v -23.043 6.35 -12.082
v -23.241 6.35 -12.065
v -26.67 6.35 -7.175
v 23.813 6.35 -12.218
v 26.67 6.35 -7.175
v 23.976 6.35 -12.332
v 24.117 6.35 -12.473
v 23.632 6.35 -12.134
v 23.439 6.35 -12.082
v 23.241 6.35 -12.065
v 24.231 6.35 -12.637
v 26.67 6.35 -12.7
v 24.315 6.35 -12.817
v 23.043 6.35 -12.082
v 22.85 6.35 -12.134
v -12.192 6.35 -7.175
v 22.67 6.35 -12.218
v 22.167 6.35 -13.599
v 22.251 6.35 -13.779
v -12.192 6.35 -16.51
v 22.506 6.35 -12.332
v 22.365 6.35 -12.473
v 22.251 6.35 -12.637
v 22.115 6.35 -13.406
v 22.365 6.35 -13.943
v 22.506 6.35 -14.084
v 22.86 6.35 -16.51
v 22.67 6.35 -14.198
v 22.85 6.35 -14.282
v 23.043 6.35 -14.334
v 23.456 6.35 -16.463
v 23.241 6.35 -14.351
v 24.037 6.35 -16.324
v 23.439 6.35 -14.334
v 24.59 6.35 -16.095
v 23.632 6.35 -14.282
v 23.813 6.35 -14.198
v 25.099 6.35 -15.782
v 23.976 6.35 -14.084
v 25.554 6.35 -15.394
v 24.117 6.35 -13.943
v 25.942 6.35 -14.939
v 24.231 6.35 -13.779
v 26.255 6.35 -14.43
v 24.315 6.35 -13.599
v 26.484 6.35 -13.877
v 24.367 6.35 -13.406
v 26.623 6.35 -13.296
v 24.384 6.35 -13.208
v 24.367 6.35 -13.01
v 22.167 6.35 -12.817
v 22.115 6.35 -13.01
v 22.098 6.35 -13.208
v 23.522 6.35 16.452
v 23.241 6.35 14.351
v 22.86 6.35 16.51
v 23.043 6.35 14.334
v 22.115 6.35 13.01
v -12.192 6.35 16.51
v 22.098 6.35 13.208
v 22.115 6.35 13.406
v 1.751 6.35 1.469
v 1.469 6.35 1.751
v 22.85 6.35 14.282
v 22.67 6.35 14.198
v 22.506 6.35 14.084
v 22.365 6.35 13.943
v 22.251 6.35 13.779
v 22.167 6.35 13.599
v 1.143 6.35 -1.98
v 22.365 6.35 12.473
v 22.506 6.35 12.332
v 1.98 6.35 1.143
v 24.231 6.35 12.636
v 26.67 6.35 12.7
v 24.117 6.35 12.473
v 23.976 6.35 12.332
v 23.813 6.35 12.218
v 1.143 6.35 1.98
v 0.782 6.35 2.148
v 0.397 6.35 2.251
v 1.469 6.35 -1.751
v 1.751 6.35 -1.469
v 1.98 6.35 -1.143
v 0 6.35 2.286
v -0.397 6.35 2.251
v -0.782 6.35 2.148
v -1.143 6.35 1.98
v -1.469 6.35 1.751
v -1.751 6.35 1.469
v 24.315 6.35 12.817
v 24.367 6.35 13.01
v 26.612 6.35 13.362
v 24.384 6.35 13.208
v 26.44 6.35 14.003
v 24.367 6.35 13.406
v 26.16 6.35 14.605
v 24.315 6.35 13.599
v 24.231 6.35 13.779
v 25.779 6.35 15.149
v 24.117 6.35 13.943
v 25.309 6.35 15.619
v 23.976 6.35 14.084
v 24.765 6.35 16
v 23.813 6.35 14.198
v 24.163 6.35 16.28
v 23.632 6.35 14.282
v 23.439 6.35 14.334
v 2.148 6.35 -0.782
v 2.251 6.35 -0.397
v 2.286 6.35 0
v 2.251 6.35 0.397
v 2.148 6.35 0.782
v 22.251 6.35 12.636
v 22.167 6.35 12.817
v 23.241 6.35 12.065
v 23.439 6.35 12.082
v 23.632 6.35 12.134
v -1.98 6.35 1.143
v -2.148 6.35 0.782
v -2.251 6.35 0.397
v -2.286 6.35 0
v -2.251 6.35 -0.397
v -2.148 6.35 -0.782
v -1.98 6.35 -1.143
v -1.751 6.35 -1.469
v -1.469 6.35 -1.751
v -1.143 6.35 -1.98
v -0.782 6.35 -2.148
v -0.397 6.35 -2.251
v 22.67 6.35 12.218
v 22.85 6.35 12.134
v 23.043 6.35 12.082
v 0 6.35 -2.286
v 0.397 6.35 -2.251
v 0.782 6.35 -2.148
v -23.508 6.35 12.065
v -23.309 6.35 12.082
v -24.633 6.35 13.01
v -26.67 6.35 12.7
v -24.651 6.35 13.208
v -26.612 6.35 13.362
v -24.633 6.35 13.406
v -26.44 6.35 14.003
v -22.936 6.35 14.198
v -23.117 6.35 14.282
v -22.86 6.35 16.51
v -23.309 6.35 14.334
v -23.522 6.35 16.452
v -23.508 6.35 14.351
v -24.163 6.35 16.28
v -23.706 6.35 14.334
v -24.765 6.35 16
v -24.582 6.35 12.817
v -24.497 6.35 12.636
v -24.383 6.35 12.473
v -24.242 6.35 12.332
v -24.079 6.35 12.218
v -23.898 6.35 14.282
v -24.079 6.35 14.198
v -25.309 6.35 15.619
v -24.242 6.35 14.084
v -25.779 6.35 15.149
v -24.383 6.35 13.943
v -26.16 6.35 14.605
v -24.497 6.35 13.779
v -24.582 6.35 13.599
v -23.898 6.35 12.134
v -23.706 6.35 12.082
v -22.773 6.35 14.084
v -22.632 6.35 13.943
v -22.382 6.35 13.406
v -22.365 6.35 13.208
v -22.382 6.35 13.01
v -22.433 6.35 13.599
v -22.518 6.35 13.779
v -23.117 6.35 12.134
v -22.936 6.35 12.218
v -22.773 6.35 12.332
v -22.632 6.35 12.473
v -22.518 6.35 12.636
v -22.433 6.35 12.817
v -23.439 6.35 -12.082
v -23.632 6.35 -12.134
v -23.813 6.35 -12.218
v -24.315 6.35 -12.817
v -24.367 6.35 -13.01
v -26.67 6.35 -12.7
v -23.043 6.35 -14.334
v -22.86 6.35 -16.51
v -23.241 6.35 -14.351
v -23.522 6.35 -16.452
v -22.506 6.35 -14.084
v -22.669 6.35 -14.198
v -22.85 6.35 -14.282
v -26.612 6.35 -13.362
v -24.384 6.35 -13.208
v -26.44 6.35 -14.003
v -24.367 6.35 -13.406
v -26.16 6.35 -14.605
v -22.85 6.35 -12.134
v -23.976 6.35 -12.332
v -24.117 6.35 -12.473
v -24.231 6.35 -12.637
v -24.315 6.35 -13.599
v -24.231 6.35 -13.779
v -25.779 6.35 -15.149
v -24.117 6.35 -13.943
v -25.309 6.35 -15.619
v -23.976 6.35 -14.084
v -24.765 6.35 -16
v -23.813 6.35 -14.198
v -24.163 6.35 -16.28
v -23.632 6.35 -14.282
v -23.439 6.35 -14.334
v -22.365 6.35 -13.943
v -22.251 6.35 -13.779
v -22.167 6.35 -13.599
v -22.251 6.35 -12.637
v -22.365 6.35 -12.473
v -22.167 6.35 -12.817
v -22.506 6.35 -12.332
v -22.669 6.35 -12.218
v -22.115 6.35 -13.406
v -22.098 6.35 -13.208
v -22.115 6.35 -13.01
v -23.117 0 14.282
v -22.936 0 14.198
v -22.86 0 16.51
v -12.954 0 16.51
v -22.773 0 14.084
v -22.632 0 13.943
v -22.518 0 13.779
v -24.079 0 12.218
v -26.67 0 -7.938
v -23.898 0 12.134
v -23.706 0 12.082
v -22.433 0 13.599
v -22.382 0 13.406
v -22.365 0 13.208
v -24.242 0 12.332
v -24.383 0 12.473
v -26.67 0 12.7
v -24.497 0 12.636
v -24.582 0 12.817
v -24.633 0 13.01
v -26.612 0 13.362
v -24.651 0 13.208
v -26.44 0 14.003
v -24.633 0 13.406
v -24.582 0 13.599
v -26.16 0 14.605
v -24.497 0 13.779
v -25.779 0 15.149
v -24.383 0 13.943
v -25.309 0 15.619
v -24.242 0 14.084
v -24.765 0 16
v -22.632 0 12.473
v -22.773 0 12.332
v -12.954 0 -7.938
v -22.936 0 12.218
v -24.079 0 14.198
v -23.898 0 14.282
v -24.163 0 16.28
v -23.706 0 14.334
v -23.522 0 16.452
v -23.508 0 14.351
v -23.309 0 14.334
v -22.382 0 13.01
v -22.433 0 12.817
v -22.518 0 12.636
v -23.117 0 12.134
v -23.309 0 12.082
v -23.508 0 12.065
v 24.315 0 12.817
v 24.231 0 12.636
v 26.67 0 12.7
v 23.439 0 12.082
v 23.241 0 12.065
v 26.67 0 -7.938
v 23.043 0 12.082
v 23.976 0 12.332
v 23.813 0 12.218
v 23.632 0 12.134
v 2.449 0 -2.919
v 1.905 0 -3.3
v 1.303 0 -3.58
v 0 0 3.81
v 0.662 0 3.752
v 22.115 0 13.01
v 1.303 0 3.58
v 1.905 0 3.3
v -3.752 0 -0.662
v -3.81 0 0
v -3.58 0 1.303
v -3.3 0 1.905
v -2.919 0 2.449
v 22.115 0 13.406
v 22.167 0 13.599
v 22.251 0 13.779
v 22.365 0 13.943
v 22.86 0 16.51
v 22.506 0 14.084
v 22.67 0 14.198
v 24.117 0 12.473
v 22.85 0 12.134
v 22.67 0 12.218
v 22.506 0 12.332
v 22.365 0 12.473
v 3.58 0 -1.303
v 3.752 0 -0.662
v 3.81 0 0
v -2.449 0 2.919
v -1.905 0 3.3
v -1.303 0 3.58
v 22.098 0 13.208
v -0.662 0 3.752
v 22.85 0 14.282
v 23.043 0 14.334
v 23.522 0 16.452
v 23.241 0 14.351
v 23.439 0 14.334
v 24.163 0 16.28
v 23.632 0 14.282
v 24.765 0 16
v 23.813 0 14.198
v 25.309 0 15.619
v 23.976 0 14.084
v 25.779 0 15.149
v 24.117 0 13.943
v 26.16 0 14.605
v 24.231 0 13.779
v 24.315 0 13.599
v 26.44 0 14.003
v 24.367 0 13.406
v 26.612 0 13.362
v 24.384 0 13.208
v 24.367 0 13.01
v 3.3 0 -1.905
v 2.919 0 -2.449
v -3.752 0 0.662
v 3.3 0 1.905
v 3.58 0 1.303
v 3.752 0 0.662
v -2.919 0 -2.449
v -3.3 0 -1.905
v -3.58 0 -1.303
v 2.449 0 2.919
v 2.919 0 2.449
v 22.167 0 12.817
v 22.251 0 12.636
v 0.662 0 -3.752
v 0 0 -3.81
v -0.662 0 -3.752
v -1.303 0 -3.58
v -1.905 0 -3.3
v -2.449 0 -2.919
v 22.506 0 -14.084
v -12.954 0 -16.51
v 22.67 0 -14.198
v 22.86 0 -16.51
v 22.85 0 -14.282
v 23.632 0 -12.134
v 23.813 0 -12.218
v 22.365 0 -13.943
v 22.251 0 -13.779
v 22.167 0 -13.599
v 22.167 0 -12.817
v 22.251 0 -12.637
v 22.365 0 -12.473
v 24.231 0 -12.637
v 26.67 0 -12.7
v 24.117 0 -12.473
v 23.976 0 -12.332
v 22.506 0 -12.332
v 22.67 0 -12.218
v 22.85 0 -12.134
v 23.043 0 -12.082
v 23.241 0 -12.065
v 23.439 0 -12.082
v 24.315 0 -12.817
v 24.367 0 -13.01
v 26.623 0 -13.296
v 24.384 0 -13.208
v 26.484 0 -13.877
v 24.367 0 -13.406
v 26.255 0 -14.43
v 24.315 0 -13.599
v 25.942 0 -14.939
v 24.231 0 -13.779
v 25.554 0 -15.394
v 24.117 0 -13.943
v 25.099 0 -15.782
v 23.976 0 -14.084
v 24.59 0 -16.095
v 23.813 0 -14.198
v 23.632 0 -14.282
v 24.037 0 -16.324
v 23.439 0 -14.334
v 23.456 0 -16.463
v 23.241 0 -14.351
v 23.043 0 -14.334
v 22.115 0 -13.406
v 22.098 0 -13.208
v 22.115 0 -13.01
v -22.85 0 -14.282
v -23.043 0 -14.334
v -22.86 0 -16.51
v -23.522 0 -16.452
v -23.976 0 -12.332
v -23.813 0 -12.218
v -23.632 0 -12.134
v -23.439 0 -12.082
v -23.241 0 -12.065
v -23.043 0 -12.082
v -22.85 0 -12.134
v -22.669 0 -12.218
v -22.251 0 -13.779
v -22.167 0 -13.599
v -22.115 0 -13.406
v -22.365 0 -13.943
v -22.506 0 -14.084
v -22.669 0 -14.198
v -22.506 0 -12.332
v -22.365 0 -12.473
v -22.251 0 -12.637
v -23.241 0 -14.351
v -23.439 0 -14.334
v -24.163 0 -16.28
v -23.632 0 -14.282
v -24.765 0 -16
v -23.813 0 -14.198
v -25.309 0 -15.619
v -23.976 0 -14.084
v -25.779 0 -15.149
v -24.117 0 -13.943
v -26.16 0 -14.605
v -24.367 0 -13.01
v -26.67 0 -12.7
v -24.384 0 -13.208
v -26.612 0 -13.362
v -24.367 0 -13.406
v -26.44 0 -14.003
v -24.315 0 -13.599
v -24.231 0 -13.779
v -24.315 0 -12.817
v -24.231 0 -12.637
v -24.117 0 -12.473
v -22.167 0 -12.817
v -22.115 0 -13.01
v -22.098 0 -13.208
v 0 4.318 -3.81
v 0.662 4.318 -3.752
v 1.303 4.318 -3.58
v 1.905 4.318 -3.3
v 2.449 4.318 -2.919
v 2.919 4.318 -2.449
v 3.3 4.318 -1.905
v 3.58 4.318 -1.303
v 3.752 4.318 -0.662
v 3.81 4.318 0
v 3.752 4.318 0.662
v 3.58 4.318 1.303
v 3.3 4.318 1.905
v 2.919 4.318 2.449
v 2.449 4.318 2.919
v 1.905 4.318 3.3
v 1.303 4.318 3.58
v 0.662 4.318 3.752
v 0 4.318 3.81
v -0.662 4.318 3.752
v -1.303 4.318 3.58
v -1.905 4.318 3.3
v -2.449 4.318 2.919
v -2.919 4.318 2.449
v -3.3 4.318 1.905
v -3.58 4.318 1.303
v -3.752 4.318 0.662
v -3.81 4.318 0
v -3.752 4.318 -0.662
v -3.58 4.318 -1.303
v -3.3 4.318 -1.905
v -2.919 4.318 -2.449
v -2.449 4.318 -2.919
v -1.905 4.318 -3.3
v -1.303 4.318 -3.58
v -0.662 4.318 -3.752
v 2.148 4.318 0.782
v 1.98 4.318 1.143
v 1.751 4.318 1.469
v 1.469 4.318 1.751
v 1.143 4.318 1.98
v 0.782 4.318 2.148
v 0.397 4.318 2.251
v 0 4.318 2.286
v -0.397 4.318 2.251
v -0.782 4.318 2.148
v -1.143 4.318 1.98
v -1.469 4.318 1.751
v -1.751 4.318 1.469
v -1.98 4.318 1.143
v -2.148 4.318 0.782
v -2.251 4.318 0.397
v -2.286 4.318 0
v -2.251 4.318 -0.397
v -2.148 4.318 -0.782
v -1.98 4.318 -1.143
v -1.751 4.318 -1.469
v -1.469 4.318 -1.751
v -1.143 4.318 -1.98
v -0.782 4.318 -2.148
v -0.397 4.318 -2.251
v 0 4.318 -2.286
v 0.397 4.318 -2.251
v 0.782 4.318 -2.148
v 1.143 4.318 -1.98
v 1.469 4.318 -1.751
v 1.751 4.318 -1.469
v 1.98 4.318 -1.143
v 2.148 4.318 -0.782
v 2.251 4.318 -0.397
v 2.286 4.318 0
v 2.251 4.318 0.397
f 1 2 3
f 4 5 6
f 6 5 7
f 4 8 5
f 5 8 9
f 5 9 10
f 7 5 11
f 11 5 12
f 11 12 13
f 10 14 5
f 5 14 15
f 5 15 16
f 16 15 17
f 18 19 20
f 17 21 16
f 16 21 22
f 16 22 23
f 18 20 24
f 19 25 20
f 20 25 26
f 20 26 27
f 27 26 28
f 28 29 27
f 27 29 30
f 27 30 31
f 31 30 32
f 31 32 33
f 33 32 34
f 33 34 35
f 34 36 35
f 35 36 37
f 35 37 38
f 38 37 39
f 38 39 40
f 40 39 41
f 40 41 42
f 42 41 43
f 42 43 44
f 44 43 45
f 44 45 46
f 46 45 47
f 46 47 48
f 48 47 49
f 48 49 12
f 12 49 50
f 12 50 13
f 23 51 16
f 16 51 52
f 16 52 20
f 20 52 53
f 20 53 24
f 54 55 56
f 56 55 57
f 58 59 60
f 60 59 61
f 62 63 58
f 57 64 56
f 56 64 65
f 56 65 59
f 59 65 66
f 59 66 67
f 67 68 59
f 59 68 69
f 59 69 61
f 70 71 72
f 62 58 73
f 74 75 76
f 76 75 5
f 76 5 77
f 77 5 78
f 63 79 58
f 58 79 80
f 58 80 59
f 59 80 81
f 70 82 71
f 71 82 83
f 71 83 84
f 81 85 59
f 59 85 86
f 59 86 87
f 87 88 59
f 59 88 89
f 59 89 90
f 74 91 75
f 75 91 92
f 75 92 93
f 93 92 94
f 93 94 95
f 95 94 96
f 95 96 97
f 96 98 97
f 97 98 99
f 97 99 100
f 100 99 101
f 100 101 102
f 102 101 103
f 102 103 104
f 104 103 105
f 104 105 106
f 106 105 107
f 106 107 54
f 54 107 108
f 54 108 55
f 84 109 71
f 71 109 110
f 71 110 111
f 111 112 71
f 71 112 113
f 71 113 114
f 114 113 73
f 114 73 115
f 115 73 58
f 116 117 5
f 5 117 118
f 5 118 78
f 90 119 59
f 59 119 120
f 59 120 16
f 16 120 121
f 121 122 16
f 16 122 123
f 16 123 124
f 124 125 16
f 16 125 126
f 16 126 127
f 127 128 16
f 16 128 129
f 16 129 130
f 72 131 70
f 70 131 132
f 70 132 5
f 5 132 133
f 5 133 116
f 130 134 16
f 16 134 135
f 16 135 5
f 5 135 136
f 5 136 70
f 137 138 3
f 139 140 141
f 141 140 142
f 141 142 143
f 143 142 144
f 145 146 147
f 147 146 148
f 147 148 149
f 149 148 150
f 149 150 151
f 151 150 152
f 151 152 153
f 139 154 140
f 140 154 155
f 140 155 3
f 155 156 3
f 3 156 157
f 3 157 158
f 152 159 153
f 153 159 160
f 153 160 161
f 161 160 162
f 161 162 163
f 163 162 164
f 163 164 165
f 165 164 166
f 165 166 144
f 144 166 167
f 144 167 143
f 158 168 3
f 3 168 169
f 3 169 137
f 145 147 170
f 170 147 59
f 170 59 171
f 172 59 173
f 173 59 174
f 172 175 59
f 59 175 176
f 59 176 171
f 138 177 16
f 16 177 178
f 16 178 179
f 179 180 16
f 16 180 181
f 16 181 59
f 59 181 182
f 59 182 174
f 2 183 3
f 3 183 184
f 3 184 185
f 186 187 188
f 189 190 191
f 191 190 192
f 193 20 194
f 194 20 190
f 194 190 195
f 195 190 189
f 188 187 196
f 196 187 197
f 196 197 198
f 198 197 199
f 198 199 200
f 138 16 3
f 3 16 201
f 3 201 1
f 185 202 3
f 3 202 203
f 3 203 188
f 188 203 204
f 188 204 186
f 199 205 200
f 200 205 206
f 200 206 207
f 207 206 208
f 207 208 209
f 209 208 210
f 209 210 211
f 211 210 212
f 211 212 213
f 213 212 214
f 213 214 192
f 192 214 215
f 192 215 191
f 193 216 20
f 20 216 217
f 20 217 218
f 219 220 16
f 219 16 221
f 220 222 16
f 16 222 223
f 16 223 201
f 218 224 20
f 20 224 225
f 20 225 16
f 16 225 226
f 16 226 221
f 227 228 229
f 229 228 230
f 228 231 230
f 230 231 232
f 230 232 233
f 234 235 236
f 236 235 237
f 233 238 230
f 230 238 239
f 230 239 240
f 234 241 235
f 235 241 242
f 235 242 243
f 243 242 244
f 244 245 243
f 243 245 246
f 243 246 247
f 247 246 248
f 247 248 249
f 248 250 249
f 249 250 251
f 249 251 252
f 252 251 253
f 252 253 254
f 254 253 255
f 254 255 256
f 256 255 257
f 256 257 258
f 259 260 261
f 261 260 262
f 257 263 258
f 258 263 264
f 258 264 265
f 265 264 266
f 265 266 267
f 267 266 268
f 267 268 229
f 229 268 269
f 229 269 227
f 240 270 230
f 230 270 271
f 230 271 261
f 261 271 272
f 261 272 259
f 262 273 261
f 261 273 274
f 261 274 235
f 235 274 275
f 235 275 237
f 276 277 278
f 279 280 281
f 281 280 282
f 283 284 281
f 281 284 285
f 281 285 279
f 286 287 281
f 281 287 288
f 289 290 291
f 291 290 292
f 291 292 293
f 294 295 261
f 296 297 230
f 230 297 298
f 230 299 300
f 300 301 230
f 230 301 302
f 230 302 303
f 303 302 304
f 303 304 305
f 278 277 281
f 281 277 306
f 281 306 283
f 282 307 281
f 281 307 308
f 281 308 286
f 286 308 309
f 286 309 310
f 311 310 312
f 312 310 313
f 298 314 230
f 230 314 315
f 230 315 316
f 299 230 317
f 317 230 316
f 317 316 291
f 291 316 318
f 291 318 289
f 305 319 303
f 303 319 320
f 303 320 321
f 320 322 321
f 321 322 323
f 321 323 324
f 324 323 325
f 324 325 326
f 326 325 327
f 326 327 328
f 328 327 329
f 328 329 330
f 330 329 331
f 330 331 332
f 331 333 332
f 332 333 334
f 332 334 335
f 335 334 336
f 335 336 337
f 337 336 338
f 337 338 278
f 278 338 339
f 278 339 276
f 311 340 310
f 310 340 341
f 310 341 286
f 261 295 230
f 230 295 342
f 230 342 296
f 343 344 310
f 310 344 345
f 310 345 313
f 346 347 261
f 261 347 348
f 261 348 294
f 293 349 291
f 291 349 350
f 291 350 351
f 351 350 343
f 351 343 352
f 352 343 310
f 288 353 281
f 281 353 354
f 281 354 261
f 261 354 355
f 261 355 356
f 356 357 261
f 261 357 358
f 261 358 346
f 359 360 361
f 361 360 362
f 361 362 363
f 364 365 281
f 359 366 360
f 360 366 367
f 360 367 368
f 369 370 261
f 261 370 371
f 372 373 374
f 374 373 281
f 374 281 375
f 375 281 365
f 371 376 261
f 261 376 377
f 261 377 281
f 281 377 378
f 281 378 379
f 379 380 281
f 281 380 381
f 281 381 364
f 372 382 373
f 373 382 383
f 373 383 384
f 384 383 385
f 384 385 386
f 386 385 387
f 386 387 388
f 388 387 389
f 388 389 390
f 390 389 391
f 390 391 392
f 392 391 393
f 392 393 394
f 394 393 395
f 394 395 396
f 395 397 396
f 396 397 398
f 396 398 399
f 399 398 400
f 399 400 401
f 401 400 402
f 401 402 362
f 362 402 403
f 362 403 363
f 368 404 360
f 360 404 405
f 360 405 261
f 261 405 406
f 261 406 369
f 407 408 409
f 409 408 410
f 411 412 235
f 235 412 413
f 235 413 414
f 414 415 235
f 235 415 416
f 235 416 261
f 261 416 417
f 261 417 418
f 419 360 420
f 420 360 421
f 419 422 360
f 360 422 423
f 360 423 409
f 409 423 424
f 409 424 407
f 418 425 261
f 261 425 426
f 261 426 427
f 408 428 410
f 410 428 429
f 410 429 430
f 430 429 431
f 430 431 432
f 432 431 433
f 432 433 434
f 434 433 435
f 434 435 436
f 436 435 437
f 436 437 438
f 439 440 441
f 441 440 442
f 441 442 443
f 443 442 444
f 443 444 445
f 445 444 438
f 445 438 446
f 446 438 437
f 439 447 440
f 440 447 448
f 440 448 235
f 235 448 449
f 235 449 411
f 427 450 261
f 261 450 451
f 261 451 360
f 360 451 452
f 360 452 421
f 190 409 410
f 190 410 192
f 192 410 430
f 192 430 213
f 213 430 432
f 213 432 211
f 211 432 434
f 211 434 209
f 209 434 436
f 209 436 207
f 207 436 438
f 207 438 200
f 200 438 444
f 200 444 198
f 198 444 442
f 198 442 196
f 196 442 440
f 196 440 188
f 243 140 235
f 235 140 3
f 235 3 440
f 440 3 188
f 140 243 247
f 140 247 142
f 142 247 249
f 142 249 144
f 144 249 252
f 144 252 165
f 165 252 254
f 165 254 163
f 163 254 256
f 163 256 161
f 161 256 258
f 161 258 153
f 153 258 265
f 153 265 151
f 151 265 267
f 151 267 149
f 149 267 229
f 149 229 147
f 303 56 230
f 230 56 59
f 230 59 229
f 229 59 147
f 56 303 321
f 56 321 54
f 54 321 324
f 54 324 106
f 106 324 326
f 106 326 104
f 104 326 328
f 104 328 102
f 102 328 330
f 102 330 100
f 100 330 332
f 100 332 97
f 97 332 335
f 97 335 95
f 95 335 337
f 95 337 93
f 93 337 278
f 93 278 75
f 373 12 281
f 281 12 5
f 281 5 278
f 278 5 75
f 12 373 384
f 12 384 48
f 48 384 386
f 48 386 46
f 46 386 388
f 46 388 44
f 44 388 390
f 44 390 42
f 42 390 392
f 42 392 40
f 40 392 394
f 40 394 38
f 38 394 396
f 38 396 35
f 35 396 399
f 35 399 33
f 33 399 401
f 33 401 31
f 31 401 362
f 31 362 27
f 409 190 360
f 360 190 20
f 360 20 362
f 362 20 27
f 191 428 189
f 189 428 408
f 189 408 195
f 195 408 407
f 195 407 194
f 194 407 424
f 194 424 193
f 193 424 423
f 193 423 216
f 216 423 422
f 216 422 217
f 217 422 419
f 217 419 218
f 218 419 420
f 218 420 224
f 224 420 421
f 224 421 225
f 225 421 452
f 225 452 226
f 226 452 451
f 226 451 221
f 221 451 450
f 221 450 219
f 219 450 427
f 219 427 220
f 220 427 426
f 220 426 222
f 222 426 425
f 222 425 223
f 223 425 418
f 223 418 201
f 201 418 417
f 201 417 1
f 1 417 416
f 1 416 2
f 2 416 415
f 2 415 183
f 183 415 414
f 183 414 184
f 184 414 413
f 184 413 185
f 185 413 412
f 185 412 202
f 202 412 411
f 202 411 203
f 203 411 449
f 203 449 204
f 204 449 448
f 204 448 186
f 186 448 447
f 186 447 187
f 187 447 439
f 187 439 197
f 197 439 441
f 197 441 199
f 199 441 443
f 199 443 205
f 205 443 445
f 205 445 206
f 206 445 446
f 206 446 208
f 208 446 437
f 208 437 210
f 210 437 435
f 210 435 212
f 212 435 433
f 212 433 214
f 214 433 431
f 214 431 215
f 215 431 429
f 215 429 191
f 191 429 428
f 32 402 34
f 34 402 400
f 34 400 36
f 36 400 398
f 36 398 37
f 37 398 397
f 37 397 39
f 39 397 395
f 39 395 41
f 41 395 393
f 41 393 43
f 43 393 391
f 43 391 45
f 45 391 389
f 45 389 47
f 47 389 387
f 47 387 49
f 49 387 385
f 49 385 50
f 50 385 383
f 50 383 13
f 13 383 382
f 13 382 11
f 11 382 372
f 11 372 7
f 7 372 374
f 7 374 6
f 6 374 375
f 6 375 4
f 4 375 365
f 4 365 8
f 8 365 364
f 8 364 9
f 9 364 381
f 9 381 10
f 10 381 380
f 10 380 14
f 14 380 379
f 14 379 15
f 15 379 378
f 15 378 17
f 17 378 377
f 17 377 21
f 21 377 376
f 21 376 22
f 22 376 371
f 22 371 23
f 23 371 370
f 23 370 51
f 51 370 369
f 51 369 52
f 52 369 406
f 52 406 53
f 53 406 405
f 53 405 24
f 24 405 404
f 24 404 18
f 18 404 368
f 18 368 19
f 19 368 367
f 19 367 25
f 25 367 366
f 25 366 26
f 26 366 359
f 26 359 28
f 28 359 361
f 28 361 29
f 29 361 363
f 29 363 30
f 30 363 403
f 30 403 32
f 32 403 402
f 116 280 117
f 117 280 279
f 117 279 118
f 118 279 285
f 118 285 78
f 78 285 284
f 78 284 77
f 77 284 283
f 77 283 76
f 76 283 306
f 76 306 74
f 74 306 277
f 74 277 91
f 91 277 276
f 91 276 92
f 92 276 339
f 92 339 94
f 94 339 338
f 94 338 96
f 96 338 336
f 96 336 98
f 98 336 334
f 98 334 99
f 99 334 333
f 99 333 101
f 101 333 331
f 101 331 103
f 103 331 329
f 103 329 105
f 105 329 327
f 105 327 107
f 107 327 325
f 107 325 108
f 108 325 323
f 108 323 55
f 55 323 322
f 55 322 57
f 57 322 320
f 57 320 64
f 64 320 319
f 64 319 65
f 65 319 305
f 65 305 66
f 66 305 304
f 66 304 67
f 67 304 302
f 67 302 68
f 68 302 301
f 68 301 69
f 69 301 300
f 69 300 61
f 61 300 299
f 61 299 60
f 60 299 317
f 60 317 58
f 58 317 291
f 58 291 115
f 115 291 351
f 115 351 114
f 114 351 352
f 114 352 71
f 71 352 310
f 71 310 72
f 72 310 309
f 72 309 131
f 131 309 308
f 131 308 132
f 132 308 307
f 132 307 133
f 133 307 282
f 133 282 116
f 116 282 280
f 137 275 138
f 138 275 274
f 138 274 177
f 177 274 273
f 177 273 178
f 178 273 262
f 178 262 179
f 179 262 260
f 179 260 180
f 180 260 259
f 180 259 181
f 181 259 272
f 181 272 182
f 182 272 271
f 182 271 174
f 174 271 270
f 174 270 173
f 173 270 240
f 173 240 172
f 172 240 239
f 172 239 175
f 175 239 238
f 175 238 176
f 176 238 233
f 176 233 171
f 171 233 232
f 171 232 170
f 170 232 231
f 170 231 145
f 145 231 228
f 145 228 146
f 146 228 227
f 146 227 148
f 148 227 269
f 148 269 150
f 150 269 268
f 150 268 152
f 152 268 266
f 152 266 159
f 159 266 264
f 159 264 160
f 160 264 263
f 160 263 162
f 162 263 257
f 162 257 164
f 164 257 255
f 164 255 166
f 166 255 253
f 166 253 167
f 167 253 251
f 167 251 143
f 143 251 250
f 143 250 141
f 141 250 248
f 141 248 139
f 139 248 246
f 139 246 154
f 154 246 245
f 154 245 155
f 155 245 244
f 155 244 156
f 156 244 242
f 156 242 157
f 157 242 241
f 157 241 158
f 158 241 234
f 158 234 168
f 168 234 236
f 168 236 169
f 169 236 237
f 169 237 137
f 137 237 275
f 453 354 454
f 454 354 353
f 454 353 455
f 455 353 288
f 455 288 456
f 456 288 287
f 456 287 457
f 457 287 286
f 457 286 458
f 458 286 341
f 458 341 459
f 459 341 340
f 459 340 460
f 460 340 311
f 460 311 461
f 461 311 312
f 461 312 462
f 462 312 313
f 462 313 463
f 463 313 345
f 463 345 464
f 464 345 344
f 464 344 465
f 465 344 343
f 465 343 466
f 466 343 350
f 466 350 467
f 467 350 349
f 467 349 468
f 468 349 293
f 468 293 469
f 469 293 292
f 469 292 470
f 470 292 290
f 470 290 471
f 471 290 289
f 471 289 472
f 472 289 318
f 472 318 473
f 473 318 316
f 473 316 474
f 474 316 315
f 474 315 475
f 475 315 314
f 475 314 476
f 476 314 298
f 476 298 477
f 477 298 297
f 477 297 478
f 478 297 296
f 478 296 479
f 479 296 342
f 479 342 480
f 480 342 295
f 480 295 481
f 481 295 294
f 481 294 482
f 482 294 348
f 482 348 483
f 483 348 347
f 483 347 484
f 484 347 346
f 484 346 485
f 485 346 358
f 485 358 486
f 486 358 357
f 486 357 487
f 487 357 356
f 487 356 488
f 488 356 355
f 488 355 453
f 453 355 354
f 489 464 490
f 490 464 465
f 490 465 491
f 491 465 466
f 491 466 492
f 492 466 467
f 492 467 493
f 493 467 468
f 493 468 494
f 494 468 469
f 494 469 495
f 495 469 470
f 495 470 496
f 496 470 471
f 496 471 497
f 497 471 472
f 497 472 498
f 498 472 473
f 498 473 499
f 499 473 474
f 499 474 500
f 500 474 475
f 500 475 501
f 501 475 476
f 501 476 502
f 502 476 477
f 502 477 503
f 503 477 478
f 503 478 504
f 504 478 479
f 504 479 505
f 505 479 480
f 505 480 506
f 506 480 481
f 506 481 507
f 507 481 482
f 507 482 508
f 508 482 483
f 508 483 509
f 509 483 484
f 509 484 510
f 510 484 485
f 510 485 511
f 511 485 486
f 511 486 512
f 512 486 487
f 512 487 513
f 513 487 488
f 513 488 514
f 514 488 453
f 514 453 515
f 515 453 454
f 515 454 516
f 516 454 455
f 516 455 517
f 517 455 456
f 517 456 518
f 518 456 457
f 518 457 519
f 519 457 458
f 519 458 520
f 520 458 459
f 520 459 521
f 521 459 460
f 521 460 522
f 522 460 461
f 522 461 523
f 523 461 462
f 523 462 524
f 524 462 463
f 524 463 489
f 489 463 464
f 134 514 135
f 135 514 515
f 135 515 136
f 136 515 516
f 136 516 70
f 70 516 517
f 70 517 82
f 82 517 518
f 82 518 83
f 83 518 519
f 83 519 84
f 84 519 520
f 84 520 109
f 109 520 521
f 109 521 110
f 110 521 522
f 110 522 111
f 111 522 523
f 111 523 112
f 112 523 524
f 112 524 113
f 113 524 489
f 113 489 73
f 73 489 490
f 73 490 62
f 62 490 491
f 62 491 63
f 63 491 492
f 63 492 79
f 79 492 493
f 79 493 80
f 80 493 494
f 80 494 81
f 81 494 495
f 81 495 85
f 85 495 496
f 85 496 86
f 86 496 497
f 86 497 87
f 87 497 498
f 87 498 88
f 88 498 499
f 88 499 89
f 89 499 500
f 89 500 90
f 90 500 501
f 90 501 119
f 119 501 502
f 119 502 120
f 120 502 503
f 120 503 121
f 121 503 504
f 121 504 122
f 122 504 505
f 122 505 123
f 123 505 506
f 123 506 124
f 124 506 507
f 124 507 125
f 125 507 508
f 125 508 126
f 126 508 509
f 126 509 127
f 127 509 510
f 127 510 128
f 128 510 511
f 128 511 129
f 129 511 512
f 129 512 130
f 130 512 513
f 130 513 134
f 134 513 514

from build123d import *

# Parameters (mm, degrees)
SKETCH1_R           = 1.143
BOSS_EXTRUDE1_DEPTH = 6.35
SKETCH2_R           = 3.81
CUT_EXTRUDE1_DEPTH  = 4.318
SKETCH3_R           = 2.286
CUT_EXTRUDE2_DEPTH  = 4.318


with BuildPart() as part:
    # Sketch1 → Boss-Extrude1 (new body)
    with BuildSketch(Plane(origin=(0, 0, 0), x_dir=(1, 0, 0), z_dir=(0, 1, 0))):
        with BuildLine():
            Line((-22.86, 16.51), (22.86, 16.51))
            ThreePointArc((22.86, 16.51), (25.554076836, 15.394076836), (26.67, 12.7))
            Line((26.67, 12.7), (26.67, -12.7))
            ThreePointArc((26.67, -12.7), (25.554076836, -15.394076836), (22.86, -16.51))
            Line((22.86, -16.51), (18.7325, -16.51))
            Line((18.7325, -16.51), (-18.7325, -16.51))
            Line((-18.7325, -16.51), (-22.86, -16.51))
            ThreePointArc((-22.86, -16.51), (-25.554076836, -15.394076836), (-26.67, -12.7))
            Line((-26.67, -12.7), (-26.67, 12.7))
            ThreePointArc((-26.67, 12.7), (-25.554076836, 15.394076836), (-22.86, 16.51))
        make_face()
        with Locations((-23.241, 13.208)):
            Circle(SKETCH1_R, mode=Mode.SUBTRACT)
        with Locations((23.241, 13.208)):
            Circle(SKETCH1_R, mode=Mode.SUBTRACT)
        with Locations((23.241, -13.208)):
            Circle(SKETCH1_R, mode=Mode.SUBTRACT)
        with Locations((-23.50753981, -13.208)):
            Circle(SKETCH1_R, mode=Mode.SUBTRACT)
    extrude(amount=BOSS_EXTRUDE1_DEPTH)

    # Sketch2 → Cut-Extrude1 (cut)
    with BuildSketch(Plane.XZ):
        Circle(SKETCH2_R)
    extrude(amount=-CUT_EXTRUDE1_DEPTH, mode=Mode.SUBTRACT)

    # Sketch3 → Cut-Extrude2 (cut)
    with BuildSketch(Plane(origin=(0, 4.318, 0), x_dir=(-1, 0, 0), z_dir=(0, -1, 0))):
        Circle(SKETCH3_R)
    extrude(amount=-CUT_EXTRUDE2_DEPTH, mode=Mode.SUBTRACT)


solid = part.part
